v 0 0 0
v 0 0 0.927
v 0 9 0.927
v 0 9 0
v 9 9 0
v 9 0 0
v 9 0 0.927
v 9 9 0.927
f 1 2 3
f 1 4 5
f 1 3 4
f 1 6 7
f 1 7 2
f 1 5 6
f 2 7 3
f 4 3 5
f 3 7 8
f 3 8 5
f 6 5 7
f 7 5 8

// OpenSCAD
/* Warning, this is a very basic generator with a lot of approximation 
input data : [VGQFN, 8QW, 9x9x0.927mm, 64, , B, C04-00669B]
generated by com.zoubworld.electronics.cad.model3d.Basic
Date : Sun Feb 15 10:50:49 CET 2026
*/

//body
color("black")
translate([0,0,0])
cube([9.0,9.0,0.927], center=false);
